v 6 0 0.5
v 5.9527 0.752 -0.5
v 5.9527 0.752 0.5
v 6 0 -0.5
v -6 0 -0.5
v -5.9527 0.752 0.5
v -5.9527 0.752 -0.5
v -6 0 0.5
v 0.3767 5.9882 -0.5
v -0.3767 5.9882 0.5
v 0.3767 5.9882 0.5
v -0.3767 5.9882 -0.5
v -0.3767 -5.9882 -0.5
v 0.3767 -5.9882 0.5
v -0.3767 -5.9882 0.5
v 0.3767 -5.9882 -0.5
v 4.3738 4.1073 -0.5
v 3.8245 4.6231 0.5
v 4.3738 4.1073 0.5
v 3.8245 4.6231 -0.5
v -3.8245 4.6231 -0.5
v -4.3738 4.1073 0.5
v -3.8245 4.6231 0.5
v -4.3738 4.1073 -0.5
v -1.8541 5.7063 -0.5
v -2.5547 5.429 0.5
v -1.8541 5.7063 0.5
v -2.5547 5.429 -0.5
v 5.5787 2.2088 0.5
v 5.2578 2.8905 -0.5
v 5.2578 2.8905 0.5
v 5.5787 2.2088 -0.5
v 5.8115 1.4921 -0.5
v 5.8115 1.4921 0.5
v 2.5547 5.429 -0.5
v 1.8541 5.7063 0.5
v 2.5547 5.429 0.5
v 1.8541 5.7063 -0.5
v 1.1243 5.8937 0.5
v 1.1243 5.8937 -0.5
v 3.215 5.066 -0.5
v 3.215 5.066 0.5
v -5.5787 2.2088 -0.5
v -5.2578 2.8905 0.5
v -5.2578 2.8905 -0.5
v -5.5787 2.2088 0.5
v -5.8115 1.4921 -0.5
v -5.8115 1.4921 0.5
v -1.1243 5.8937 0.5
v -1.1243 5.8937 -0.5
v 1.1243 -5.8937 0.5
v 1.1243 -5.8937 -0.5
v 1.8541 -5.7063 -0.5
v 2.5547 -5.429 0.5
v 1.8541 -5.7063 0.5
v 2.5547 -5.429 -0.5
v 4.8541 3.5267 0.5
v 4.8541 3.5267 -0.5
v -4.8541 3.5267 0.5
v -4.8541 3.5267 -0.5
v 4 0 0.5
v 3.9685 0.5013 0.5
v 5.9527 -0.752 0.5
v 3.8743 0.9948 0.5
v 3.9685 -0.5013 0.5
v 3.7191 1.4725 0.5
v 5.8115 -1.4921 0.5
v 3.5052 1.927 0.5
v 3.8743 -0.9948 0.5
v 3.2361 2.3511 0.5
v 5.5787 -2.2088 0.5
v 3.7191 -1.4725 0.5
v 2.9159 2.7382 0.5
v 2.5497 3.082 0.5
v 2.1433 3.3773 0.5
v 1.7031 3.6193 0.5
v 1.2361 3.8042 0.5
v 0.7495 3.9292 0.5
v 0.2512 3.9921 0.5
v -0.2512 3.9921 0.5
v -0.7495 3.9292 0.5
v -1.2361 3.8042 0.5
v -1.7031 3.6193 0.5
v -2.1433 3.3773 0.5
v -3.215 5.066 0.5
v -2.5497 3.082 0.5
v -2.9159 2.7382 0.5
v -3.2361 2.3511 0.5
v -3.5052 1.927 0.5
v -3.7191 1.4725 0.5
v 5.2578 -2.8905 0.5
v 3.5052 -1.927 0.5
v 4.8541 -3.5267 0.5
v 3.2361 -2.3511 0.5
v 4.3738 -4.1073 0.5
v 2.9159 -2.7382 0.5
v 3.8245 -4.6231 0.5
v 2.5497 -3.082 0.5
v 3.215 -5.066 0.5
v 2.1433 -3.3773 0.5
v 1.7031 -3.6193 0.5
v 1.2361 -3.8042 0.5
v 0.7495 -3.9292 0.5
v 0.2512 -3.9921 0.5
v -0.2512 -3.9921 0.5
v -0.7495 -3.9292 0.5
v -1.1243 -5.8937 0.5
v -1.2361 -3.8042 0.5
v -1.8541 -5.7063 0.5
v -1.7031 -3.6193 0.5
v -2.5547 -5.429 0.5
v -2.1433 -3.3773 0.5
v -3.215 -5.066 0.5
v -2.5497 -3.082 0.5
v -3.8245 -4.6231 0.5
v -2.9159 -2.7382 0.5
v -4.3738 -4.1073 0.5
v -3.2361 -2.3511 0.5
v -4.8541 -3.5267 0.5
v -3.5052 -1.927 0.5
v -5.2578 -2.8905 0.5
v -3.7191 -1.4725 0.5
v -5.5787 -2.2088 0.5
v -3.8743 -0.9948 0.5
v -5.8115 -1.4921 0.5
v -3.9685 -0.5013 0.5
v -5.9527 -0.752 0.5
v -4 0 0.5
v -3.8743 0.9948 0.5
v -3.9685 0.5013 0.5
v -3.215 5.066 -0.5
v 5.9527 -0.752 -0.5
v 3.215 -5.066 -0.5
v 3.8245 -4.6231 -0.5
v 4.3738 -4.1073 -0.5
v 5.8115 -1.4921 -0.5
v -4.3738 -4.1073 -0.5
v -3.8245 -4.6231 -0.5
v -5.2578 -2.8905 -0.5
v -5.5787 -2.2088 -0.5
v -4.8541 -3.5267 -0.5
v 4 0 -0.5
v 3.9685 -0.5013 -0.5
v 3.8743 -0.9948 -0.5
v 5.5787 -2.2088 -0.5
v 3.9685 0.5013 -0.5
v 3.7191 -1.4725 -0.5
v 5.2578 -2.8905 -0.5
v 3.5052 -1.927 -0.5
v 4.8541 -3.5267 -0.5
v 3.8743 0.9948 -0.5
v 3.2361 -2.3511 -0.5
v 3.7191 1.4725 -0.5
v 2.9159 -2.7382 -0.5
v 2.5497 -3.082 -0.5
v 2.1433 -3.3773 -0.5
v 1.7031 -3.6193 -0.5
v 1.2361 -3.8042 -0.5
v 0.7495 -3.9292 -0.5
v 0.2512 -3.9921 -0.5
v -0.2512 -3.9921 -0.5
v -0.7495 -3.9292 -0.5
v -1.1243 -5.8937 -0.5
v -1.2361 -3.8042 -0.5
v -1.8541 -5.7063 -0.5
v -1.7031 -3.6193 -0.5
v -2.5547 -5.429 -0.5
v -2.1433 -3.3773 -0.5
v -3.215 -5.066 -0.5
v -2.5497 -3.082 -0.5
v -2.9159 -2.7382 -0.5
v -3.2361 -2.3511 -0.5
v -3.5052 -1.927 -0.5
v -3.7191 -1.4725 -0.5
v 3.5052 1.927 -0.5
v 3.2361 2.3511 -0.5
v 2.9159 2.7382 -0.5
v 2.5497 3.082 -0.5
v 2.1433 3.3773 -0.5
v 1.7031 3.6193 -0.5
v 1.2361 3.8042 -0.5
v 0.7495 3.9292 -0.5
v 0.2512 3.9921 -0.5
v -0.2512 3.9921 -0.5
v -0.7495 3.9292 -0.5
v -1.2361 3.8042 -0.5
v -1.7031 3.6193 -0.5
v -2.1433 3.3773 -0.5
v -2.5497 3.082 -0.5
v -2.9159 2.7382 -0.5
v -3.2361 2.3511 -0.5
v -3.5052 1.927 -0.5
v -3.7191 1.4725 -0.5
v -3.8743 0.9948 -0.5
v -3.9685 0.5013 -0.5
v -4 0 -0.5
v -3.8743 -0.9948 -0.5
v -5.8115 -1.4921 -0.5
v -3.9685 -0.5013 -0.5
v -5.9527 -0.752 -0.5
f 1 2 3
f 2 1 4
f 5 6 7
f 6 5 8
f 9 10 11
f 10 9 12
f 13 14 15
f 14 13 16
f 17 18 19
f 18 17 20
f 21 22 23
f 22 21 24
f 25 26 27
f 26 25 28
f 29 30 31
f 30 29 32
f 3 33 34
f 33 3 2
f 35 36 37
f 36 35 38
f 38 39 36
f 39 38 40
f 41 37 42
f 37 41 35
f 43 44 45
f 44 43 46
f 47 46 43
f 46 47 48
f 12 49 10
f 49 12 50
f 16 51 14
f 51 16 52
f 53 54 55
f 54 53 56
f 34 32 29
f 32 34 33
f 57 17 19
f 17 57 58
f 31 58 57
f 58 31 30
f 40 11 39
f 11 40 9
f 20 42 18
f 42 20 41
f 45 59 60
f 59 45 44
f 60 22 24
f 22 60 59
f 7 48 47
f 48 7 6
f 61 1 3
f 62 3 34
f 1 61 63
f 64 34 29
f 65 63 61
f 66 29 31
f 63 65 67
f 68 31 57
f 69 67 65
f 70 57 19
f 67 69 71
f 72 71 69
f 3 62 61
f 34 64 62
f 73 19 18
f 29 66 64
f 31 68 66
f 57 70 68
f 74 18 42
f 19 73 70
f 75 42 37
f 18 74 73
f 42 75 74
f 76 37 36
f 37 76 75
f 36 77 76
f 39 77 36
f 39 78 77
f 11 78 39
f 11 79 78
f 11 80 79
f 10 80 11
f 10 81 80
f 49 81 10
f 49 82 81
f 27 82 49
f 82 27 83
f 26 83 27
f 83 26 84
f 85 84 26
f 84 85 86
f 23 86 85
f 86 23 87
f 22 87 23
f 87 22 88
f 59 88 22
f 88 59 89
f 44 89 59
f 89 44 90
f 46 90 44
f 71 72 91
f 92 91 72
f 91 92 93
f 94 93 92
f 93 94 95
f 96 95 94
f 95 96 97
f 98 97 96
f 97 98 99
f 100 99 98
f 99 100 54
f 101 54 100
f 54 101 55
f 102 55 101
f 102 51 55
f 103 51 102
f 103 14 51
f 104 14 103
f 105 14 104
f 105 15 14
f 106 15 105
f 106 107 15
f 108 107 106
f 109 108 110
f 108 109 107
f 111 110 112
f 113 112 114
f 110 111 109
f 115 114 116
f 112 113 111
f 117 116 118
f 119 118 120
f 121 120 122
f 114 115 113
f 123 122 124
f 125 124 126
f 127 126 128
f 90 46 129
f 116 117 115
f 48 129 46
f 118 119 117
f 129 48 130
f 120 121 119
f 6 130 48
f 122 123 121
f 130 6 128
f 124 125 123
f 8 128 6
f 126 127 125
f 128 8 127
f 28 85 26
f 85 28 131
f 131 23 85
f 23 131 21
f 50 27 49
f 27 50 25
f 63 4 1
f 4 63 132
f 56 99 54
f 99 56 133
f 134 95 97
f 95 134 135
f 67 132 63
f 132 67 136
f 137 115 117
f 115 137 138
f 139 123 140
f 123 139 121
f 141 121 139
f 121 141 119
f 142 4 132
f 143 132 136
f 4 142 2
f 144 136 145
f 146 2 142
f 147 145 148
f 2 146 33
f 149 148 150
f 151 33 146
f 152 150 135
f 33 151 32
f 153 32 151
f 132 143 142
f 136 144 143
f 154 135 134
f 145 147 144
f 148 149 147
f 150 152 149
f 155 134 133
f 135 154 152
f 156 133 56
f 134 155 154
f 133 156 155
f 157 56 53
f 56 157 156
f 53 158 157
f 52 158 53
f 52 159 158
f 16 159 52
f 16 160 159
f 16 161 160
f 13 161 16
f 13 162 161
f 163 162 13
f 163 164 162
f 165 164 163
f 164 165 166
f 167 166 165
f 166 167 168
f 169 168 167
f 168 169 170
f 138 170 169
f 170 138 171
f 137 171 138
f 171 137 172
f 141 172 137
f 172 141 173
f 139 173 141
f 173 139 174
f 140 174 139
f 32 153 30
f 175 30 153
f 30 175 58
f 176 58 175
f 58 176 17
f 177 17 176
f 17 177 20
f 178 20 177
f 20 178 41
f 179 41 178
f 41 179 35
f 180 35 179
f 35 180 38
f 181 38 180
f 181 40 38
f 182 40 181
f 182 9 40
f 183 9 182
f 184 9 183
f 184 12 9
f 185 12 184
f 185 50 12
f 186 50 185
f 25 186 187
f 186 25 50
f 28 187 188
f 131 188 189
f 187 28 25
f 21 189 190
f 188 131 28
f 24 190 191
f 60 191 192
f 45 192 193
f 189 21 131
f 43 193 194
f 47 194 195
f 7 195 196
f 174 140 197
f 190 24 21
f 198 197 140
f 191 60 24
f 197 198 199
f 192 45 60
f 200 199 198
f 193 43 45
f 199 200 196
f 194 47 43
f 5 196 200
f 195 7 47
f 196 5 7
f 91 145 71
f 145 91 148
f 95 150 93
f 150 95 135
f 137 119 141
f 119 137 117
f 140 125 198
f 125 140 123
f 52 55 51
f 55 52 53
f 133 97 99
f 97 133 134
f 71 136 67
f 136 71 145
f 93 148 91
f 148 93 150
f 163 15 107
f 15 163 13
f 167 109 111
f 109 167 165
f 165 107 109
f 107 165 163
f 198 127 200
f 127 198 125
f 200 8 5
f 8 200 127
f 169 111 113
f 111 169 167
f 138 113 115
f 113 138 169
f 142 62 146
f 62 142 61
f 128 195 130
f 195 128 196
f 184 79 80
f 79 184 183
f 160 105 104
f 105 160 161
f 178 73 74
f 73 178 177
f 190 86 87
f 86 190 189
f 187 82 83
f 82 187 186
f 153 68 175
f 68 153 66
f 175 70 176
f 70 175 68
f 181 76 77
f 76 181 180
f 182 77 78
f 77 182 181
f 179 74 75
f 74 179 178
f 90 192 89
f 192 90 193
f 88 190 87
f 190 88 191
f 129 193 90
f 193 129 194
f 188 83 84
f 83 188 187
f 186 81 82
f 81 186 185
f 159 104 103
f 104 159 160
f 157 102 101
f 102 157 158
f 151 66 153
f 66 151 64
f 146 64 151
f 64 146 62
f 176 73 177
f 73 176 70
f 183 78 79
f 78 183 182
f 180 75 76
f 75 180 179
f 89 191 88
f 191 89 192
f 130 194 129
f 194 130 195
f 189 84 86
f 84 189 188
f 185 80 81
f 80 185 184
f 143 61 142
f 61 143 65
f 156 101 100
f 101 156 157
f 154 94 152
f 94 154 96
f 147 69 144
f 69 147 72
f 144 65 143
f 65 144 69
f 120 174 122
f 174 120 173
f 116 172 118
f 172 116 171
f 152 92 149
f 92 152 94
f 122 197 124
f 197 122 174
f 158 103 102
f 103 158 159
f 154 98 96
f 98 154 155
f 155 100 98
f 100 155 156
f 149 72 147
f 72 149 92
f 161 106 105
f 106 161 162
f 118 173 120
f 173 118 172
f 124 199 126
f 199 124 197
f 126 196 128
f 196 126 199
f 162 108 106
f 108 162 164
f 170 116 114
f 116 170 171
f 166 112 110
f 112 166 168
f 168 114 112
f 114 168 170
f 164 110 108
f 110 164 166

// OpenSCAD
$fn = 50;


difference() {
	union() {
		translate(v = [0, 0, -0.5000000000]) {
			cylinder(h = 1, r = 6.0000000000);
		}
	}
	union() {
		translate(v = [0, 0, -100.0000000000]) {
			cylinder(h = 200, r = 4);
		}
	}
}
